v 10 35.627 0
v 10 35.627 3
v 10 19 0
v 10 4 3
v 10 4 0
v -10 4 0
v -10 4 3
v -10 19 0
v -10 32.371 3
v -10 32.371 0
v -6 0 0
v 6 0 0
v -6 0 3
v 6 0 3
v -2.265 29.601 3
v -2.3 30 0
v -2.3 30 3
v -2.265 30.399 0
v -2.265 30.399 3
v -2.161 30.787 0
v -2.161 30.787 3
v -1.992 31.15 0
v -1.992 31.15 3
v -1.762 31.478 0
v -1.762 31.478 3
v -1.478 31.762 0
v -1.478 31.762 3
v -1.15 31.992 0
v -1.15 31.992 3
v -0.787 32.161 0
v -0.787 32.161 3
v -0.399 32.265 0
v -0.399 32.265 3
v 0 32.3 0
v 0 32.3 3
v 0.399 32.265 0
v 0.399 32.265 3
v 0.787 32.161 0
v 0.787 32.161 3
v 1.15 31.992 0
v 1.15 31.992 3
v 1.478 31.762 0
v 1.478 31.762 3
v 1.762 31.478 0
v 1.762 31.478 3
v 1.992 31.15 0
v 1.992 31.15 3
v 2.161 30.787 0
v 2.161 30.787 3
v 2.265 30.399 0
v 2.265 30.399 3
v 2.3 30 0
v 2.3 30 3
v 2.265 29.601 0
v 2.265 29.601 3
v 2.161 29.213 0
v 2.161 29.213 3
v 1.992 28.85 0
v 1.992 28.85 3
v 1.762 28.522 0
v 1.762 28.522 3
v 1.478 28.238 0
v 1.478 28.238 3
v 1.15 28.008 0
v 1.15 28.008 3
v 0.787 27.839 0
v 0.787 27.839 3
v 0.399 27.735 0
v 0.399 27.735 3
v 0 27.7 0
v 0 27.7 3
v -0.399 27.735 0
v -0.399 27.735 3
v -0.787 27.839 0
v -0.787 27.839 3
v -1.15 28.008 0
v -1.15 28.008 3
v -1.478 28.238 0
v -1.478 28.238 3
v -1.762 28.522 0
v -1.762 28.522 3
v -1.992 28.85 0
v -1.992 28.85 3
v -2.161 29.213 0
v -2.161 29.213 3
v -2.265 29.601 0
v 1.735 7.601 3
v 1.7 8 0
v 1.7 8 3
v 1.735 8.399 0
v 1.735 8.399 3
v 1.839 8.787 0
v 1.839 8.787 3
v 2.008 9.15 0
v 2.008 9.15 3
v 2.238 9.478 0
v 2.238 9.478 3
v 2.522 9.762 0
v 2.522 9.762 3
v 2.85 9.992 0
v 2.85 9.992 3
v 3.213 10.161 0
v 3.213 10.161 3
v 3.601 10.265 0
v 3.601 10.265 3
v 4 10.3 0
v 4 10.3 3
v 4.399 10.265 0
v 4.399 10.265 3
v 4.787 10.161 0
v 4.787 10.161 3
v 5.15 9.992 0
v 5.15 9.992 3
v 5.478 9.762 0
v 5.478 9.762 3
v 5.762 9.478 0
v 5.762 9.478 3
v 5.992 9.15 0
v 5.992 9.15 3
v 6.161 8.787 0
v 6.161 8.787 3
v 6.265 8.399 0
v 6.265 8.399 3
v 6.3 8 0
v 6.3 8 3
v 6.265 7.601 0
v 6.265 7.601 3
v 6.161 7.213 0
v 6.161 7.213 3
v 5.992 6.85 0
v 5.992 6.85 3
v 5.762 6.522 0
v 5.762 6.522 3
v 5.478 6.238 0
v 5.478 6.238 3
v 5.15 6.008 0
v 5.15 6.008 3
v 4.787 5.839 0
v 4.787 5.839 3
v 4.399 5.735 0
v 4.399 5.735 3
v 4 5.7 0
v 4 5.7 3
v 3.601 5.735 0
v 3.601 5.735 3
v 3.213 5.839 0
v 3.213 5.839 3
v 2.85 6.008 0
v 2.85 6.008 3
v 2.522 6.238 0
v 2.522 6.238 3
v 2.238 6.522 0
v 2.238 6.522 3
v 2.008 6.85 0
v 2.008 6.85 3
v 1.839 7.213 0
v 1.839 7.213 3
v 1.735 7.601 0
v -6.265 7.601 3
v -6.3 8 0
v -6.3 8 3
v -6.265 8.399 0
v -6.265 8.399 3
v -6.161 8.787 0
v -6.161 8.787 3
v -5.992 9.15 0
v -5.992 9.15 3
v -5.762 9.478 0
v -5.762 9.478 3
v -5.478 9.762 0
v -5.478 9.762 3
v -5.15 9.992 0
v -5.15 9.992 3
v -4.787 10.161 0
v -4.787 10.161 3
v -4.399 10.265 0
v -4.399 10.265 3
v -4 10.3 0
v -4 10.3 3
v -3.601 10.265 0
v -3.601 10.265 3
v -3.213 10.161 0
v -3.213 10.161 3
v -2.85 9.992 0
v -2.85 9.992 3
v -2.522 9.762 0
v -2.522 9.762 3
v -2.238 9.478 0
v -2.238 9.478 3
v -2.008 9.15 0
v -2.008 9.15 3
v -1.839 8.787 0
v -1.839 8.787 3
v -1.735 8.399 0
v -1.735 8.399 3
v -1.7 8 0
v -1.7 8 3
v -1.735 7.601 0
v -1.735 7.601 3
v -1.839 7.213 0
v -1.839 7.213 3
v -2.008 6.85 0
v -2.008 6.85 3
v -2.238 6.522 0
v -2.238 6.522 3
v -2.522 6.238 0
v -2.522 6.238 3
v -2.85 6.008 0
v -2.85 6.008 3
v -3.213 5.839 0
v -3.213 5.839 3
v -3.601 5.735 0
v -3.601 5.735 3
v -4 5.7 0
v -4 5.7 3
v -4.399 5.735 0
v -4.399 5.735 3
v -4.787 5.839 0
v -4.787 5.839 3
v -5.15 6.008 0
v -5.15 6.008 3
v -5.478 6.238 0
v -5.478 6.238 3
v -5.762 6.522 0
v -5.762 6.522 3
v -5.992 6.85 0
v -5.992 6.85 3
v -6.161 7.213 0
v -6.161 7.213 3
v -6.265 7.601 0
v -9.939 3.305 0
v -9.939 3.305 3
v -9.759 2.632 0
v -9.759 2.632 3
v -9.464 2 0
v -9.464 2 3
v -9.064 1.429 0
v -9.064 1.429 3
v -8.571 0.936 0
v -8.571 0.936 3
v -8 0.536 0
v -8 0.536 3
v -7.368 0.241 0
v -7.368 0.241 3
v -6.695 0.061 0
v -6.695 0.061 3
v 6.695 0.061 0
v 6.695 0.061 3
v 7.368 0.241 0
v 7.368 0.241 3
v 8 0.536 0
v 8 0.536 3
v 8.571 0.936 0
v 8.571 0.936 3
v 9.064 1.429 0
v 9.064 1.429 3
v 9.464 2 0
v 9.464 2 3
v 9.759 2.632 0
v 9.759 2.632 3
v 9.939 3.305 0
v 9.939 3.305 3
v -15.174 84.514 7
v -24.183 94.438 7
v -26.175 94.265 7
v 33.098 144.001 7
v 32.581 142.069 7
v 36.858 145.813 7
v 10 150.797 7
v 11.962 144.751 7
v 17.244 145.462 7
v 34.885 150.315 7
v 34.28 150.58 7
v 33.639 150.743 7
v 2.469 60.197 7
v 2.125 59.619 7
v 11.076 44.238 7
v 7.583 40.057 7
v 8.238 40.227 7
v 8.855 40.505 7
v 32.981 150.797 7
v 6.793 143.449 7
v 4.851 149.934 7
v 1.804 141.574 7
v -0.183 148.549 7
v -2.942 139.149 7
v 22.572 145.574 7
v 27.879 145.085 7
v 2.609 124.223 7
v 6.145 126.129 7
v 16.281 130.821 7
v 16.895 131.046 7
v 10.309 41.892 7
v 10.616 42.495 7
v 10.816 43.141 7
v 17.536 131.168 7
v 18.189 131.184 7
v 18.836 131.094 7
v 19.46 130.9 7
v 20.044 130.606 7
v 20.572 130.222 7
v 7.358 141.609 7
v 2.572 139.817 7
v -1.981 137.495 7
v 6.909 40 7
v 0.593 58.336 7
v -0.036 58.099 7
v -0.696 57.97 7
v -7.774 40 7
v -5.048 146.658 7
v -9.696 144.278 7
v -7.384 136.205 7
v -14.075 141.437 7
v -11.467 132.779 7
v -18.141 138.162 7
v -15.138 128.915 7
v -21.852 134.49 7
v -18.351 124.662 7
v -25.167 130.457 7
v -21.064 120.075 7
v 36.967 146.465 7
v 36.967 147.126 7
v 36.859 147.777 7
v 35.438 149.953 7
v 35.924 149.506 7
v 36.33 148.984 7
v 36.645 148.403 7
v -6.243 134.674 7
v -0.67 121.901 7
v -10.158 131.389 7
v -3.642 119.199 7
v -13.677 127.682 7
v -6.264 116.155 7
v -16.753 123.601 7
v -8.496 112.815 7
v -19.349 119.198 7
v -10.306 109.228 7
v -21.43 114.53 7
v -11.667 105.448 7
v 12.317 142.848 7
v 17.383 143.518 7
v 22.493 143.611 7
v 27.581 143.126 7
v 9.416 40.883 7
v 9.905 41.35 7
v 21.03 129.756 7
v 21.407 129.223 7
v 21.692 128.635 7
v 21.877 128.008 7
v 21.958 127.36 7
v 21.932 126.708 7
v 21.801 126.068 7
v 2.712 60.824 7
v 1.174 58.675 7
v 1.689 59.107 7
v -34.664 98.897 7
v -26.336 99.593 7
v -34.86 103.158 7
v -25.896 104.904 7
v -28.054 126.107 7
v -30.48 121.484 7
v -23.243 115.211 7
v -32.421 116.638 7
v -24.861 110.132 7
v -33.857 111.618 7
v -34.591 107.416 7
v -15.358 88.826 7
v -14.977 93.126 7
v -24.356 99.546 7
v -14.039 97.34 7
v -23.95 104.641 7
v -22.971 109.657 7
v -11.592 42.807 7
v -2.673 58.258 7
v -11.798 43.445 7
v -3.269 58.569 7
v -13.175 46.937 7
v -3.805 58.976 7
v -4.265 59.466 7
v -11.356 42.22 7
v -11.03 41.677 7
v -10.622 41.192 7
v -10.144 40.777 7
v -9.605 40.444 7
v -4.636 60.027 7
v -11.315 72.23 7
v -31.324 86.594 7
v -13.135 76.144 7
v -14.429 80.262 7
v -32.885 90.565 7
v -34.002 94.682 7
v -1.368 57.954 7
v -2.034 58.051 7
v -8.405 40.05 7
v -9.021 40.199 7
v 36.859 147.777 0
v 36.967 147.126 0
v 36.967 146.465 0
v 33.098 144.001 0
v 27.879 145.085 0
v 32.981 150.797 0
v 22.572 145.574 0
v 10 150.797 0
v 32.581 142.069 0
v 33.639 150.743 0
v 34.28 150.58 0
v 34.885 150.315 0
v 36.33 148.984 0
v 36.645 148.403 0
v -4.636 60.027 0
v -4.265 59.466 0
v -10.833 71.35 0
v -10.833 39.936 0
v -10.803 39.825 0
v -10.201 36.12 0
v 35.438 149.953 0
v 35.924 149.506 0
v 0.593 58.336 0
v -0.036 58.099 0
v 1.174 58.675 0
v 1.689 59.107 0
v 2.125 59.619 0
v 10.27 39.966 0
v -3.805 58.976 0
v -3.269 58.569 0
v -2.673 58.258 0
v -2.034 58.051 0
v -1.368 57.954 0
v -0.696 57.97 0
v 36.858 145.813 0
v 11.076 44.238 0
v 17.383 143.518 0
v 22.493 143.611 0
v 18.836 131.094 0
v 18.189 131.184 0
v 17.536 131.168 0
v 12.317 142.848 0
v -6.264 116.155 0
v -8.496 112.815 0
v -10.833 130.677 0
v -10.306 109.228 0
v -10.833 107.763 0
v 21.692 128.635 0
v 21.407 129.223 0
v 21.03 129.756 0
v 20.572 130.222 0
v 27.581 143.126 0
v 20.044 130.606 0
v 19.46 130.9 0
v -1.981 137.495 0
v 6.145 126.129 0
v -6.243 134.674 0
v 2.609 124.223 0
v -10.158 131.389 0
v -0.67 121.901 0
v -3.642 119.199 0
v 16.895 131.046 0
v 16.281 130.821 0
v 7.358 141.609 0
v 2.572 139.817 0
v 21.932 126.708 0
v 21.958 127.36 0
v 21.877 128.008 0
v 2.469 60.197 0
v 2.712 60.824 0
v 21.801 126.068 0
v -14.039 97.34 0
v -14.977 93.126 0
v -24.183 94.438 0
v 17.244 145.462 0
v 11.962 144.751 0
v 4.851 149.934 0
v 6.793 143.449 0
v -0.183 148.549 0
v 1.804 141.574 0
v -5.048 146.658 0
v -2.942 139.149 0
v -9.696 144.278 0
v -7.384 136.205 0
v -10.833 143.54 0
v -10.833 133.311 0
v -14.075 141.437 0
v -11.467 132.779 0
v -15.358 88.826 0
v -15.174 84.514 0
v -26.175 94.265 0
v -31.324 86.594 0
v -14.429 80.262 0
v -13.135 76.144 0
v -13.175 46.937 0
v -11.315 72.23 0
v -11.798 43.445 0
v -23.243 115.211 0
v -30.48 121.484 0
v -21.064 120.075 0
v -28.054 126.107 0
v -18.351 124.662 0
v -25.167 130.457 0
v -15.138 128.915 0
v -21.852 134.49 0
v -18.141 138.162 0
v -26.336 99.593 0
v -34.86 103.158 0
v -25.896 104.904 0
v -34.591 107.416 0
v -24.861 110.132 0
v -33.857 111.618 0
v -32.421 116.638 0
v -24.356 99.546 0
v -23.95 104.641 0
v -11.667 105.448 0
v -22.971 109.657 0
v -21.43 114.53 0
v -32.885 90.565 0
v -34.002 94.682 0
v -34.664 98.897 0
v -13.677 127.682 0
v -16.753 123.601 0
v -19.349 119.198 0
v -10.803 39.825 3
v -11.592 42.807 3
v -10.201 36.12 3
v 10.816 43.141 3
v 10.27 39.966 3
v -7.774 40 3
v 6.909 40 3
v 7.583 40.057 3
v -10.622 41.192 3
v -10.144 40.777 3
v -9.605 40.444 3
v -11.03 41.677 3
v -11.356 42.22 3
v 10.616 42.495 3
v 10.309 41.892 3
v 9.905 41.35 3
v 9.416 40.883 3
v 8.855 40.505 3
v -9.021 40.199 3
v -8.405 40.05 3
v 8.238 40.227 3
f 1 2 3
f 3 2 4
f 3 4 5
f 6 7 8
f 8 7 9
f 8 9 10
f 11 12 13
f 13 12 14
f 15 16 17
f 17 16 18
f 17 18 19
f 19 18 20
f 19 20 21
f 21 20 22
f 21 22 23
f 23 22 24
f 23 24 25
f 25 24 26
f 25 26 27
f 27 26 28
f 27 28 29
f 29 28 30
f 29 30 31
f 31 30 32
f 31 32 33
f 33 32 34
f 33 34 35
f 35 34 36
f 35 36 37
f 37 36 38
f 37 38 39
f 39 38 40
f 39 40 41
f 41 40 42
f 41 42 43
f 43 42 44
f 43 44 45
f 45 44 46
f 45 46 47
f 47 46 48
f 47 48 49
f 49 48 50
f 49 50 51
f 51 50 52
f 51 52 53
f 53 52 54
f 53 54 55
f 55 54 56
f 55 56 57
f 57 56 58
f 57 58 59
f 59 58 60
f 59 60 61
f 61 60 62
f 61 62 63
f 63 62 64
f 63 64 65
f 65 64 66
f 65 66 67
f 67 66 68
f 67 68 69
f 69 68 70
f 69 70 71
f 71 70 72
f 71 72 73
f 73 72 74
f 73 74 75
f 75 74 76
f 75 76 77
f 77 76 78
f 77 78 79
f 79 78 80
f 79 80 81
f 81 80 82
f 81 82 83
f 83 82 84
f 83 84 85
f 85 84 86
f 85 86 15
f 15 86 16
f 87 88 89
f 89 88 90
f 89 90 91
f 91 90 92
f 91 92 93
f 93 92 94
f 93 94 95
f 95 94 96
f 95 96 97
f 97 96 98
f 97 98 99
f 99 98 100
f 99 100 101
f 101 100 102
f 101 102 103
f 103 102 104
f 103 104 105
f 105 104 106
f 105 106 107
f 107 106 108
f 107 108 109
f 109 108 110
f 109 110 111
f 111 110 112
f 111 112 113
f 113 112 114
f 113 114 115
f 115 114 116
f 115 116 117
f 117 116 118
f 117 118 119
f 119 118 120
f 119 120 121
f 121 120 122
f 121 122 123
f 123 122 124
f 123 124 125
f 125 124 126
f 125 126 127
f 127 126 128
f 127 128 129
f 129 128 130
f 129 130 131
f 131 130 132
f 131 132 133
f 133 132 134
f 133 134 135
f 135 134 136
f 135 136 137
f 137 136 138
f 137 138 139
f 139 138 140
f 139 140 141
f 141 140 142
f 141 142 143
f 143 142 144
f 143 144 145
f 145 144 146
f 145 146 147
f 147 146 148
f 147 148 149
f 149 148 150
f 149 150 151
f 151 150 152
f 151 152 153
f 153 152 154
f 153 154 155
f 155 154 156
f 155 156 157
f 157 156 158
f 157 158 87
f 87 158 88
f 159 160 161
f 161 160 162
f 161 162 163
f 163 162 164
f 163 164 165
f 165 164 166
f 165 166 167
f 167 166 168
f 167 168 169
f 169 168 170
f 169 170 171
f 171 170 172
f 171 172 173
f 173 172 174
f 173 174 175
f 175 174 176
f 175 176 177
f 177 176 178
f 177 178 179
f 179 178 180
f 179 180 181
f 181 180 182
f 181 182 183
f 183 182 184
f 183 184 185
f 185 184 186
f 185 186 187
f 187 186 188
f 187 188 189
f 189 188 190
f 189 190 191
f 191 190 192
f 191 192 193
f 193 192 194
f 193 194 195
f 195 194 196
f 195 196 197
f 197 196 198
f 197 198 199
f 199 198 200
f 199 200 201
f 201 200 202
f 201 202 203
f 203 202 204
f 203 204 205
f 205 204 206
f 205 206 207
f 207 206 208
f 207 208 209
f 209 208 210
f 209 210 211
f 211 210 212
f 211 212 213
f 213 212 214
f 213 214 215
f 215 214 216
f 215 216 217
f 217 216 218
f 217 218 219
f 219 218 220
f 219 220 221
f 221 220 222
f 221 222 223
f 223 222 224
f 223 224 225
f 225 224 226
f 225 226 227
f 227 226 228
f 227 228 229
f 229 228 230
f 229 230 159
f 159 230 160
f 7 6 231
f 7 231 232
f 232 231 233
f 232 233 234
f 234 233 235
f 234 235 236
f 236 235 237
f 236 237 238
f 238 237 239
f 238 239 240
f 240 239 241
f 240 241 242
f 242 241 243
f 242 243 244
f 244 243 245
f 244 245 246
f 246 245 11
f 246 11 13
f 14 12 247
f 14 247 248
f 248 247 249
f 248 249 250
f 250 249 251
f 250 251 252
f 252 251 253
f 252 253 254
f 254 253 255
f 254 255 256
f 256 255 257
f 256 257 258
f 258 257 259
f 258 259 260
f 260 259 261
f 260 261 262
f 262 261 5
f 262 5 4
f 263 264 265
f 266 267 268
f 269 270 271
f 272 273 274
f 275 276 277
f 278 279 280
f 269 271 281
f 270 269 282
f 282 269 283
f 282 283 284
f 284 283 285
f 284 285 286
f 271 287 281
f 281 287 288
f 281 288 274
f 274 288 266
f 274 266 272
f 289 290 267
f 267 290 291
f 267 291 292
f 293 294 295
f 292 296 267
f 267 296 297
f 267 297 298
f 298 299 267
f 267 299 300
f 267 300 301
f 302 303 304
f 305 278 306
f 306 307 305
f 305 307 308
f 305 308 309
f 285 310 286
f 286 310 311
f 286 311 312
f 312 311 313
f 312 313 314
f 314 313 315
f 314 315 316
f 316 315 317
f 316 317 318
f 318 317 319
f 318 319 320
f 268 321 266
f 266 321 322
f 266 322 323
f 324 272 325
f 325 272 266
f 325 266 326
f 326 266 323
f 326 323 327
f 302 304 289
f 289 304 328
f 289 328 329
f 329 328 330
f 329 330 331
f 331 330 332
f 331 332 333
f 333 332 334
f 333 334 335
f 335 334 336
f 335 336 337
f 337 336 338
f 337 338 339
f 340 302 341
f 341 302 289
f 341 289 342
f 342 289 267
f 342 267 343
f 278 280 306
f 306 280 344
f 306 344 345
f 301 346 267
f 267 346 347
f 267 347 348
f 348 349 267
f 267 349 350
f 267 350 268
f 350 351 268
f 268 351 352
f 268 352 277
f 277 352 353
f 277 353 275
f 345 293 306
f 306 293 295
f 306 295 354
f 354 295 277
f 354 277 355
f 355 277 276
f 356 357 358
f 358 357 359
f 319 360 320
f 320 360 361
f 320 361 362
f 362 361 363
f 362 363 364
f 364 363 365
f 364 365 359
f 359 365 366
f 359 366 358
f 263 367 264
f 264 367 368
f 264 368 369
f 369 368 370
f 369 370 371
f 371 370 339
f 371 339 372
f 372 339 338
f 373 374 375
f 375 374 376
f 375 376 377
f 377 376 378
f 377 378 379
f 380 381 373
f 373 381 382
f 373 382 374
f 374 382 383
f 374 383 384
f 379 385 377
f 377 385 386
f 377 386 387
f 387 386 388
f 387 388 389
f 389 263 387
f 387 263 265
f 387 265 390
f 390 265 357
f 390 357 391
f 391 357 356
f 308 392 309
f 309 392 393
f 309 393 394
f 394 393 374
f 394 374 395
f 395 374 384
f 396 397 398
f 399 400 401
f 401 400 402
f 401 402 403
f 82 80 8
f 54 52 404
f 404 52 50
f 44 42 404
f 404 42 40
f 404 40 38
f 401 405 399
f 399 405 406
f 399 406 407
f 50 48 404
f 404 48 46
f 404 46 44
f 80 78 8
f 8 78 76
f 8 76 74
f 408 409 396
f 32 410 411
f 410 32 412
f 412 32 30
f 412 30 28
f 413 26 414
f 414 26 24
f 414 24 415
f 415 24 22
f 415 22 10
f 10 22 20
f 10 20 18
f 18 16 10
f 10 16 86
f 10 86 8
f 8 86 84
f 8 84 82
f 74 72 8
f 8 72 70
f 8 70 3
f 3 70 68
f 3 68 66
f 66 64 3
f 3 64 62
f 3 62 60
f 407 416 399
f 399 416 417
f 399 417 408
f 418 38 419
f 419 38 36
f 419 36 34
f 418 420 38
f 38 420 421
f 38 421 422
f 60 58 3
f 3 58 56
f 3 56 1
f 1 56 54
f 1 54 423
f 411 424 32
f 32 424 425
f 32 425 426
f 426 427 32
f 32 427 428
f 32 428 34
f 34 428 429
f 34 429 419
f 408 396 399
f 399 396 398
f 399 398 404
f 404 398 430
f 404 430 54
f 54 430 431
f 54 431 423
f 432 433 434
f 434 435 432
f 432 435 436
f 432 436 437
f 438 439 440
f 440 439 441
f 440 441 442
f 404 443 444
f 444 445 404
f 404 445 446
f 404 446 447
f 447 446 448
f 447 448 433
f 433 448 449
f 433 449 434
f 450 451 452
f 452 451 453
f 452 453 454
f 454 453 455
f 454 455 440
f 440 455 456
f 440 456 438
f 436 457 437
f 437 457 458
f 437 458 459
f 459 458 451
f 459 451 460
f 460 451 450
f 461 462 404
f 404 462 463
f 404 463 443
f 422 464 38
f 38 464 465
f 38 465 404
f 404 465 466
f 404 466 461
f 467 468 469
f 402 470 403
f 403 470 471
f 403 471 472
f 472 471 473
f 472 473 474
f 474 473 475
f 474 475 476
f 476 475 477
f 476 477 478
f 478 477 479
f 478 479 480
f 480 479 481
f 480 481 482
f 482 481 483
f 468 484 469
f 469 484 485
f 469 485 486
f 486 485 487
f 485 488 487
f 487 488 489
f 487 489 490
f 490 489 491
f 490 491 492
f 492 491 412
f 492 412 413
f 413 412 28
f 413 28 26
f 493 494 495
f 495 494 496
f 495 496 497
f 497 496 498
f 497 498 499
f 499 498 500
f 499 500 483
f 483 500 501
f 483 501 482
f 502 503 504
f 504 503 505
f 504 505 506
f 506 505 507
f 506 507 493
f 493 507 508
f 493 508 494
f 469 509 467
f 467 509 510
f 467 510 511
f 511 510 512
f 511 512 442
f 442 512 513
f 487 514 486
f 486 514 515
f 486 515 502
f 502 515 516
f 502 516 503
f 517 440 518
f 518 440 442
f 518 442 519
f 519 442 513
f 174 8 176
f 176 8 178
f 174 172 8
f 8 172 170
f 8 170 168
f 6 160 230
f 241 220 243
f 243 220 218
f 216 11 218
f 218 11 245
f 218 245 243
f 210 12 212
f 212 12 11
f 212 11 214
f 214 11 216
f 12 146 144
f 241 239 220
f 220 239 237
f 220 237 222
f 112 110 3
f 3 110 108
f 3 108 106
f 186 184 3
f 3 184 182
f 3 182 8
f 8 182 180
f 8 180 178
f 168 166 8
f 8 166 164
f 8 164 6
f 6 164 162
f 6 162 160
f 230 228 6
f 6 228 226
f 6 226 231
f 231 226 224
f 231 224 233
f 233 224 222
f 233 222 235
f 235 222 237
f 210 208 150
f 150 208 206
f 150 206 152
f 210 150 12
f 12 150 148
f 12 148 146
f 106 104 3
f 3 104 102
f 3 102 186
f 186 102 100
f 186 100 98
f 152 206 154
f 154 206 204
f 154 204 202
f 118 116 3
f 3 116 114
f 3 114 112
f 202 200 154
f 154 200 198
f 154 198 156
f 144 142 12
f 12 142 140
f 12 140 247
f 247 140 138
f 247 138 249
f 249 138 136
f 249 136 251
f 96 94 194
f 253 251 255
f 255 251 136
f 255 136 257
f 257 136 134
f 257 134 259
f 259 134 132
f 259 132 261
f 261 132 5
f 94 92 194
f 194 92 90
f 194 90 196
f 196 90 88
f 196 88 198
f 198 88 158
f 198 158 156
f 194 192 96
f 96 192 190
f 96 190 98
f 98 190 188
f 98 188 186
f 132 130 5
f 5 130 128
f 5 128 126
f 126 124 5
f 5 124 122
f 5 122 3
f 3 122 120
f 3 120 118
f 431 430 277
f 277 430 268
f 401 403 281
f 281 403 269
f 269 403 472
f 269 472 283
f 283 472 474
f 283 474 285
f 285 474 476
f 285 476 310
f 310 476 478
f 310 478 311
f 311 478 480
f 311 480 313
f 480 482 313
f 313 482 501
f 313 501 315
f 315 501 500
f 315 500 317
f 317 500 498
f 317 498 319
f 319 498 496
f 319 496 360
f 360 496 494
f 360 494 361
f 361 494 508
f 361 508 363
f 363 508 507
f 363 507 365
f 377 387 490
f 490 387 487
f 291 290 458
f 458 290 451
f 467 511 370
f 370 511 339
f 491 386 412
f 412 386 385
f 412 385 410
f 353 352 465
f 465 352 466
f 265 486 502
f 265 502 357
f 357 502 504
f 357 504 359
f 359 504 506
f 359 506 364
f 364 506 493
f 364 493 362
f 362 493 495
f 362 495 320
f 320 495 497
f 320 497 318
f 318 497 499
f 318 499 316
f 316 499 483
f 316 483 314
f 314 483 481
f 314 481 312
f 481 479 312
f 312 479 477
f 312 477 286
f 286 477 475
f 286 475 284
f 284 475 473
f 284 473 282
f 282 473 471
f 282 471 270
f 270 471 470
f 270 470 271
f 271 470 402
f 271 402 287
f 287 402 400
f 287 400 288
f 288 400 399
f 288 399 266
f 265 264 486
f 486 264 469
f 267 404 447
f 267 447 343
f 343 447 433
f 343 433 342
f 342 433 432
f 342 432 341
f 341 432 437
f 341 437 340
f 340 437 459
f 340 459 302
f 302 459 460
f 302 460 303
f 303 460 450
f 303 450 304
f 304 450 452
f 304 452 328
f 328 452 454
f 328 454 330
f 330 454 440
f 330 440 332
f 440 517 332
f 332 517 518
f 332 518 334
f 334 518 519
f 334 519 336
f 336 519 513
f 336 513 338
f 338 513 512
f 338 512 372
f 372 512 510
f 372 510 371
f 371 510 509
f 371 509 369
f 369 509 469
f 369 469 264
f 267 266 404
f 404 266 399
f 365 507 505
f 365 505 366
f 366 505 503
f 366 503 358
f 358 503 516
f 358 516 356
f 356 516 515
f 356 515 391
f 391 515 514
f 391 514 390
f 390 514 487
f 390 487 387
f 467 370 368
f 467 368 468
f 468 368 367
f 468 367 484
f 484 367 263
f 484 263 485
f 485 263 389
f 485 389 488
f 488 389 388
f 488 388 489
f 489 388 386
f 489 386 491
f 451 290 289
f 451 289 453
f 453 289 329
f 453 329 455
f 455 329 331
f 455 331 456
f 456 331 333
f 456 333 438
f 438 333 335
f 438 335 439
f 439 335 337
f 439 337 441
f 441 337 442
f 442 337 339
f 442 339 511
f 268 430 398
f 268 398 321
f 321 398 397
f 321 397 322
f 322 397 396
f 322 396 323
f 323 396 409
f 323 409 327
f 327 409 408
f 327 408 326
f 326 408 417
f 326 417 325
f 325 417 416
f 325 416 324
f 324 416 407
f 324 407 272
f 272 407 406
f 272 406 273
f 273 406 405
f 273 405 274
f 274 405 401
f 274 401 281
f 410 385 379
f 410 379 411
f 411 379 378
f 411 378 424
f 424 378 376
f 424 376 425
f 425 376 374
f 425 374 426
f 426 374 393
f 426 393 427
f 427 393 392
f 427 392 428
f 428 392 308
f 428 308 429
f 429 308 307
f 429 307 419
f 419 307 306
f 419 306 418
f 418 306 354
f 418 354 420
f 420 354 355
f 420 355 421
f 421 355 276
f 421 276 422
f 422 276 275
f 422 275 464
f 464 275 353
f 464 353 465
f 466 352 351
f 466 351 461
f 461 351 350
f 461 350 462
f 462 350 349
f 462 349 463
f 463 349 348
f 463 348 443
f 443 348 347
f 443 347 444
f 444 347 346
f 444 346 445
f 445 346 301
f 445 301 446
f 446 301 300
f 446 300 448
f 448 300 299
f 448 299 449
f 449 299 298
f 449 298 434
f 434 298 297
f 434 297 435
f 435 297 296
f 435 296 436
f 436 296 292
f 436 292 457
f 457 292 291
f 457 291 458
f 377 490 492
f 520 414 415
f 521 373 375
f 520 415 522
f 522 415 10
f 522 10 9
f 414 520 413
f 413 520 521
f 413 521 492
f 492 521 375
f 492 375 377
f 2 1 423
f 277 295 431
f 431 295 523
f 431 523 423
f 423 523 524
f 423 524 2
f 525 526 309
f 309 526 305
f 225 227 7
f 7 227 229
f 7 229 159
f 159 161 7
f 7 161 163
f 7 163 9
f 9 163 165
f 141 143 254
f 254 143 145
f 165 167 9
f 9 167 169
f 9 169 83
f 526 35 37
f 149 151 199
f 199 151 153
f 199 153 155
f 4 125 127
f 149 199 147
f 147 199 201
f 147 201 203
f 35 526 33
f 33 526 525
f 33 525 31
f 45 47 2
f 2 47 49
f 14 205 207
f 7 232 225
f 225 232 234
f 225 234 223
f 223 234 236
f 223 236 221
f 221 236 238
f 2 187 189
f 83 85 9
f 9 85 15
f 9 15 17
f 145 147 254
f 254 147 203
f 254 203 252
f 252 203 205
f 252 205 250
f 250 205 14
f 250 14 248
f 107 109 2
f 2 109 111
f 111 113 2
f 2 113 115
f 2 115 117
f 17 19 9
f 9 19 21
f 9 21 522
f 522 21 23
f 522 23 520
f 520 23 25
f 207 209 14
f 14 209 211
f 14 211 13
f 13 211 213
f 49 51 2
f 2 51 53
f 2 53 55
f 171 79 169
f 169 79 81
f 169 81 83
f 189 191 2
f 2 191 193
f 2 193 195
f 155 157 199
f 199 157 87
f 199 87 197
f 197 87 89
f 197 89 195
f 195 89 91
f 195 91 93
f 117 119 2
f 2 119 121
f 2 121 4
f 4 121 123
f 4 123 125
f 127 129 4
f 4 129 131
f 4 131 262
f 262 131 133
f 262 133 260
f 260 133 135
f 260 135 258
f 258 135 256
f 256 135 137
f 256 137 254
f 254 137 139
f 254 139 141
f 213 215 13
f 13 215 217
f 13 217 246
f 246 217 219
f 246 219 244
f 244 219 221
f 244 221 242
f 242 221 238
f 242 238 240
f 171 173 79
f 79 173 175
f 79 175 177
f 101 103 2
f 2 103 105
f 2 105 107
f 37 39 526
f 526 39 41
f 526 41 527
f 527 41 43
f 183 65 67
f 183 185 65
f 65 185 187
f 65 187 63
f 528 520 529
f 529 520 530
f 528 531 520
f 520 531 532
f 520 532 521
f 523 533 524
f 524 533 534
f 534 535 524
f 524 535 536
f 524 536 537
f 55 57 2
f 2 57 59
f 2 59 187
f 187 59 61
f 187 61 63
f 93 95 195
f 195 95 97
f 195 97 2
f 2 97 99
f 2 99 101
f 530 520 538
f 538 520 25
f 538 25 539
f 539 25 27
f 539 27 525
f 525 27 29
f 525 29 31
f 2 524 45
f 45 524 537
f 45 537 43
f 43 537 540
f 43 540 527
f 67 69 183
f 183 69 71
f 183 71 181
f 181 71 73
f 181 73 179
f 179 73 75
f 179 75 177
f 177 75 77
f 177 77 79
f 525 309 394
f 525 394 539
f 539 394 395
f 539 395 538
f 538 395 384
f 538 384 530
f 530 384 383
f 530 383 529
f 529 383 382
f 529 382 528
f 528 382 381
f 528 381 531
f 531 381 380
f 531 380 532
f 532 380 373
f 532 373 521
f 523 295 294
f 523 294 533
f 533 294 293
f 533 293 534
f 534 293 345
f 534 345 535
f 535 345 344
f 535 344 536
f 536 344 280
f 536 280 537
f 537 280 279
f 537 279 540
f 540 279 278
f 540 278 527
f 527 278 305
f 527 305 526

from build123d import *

# Parameters (mm, degrees)
SKETCH1_R          = 2.3
EXTRUDE1_DEPTH     = 7
FILLET1_R          = 39
FILLET2_R          = 33
FILLET3_R          = 4
FILLET4_R          = 35
SKETCH2_W          = 32.945688526
SKETCH2_H          = 40
CUT_EXTRUDE1_DEPTH = 4
FILLET5_R          = 4


with BuildPart() as part:
    # Sketch1 → Extrude1 (new body)
    with BuildSketch(Plane.XY):
        with BuildLine():
            Line((-10, 0), (-10, 40))
            Line((-10, 40), (-34.835050164, 94.26528975))
            ThreePointArc((-34.835050164, 94.26528975), (-24.125651083, 131.816849255), (10, 150.797122912))
            Line((10, 150.797122912), (38.123036173, 150.797122912))
            Line((38.123036173, 150.797122912), (10, 40))
            Line((10, 40), (10, 0))
            Line((10, 0), (-10, 0))
        make_face()
        with Locations((0, 30)):
            Circle(SKETCH1_R, mode=Mode.SUBTRACT)
        with Locations((4, 8)):
            Circle(SKETCH1_R, mode=Mode.SUBTRACT)
        with Locations((-4, 8)):
            Circle(SKETCH1_R, mode=Mode.SUBTRACT)
        Polygon((24.273596224, 134.519949949), (0, 51.555620572), (-17.877283618, 84.220450394), (-7.457593377, 119.833740044), align=None, mode=Mode.SUBTRACT)
        with BuildLine():
            Line((32.581459881, 142.069152681), (33.097875117, 144.001331581))
            ThreePointArc((33.097875117, 144.001331581), (-9.474149394, 134.549204992), (-26.175231417, 94.26528975))
            Line((-26.175231417, 94.26528975), (-24.182732091, 94.438340134))
            ThreePointArc((-24.182732091, 94.438340134), (-8.246919268, 133.086649081), (32.581459881, 142.069152681))
        make_face(mode=Mode.SUBTRACT)
    extrude(amount=EXTRUDE1_DEPTH)

    # Fillet1
    fillet1_edges = [part.edges().sort_by_distance(p)[0] for p in [
        (-34.835050164, 94.26528975, 3.5),
    ]]
    fillet(fillet1_edges, radius=FILLET1_R)

    # Fillet2
    fillet2_edges = [part.edges().sort_by_distance(p)[0] for p in [
        (-7.457593377, 119.833740044, 3.5),
        (-17.877283618, 84.220450394, 3.5),
    ]]
    fillet(fillet2_edges, radius=FILLET2_R)

    # Fillet3
    fillet3_edges = [part.edges().sort_by_distance(p)[0] for p in [
        (10, 0, 3.5),
        (-10, 0, 3.5),
        (38.123036173, 150.797122912, 3.5),
        (24.273596224, 134.519949949, 3.5),
        (0, 51.555620572, 3.5),
    ]]
    fillet(fillet3_edges, radius=FILLET3_R)

    # Fillet4
    fillet4_edges = [part.edges().sort_by_distance(p)[0] for p in [
        (-10, 40, 3.5),
        (10, 40, 3.5),
    ]]
    fillet(fillet4_edges, radius=FILLET4_R)

    # Sketch2 → Cut-Extrude1 (cut)
    with BuildSketch(Plane.XY.offset(7)):
        with Locations((-0.117072908, 20)):
            Rectangle(SKETCH2_W, SKETCH2_H)
    extrude(amount=-CUT_EXTRUDE1_DEPTH, mode=Mode.SUBTRACT)

    # Fillet5
    fillet5_edges = [part.edges().sort_by_distance(p)[0] for p in [
        (10.274211948, 40, 5),
        (-10.841473657, 40, 5),
    ]]
    fillet(fillet5_edges, radius=FILLET5_R)


solid = part.part
